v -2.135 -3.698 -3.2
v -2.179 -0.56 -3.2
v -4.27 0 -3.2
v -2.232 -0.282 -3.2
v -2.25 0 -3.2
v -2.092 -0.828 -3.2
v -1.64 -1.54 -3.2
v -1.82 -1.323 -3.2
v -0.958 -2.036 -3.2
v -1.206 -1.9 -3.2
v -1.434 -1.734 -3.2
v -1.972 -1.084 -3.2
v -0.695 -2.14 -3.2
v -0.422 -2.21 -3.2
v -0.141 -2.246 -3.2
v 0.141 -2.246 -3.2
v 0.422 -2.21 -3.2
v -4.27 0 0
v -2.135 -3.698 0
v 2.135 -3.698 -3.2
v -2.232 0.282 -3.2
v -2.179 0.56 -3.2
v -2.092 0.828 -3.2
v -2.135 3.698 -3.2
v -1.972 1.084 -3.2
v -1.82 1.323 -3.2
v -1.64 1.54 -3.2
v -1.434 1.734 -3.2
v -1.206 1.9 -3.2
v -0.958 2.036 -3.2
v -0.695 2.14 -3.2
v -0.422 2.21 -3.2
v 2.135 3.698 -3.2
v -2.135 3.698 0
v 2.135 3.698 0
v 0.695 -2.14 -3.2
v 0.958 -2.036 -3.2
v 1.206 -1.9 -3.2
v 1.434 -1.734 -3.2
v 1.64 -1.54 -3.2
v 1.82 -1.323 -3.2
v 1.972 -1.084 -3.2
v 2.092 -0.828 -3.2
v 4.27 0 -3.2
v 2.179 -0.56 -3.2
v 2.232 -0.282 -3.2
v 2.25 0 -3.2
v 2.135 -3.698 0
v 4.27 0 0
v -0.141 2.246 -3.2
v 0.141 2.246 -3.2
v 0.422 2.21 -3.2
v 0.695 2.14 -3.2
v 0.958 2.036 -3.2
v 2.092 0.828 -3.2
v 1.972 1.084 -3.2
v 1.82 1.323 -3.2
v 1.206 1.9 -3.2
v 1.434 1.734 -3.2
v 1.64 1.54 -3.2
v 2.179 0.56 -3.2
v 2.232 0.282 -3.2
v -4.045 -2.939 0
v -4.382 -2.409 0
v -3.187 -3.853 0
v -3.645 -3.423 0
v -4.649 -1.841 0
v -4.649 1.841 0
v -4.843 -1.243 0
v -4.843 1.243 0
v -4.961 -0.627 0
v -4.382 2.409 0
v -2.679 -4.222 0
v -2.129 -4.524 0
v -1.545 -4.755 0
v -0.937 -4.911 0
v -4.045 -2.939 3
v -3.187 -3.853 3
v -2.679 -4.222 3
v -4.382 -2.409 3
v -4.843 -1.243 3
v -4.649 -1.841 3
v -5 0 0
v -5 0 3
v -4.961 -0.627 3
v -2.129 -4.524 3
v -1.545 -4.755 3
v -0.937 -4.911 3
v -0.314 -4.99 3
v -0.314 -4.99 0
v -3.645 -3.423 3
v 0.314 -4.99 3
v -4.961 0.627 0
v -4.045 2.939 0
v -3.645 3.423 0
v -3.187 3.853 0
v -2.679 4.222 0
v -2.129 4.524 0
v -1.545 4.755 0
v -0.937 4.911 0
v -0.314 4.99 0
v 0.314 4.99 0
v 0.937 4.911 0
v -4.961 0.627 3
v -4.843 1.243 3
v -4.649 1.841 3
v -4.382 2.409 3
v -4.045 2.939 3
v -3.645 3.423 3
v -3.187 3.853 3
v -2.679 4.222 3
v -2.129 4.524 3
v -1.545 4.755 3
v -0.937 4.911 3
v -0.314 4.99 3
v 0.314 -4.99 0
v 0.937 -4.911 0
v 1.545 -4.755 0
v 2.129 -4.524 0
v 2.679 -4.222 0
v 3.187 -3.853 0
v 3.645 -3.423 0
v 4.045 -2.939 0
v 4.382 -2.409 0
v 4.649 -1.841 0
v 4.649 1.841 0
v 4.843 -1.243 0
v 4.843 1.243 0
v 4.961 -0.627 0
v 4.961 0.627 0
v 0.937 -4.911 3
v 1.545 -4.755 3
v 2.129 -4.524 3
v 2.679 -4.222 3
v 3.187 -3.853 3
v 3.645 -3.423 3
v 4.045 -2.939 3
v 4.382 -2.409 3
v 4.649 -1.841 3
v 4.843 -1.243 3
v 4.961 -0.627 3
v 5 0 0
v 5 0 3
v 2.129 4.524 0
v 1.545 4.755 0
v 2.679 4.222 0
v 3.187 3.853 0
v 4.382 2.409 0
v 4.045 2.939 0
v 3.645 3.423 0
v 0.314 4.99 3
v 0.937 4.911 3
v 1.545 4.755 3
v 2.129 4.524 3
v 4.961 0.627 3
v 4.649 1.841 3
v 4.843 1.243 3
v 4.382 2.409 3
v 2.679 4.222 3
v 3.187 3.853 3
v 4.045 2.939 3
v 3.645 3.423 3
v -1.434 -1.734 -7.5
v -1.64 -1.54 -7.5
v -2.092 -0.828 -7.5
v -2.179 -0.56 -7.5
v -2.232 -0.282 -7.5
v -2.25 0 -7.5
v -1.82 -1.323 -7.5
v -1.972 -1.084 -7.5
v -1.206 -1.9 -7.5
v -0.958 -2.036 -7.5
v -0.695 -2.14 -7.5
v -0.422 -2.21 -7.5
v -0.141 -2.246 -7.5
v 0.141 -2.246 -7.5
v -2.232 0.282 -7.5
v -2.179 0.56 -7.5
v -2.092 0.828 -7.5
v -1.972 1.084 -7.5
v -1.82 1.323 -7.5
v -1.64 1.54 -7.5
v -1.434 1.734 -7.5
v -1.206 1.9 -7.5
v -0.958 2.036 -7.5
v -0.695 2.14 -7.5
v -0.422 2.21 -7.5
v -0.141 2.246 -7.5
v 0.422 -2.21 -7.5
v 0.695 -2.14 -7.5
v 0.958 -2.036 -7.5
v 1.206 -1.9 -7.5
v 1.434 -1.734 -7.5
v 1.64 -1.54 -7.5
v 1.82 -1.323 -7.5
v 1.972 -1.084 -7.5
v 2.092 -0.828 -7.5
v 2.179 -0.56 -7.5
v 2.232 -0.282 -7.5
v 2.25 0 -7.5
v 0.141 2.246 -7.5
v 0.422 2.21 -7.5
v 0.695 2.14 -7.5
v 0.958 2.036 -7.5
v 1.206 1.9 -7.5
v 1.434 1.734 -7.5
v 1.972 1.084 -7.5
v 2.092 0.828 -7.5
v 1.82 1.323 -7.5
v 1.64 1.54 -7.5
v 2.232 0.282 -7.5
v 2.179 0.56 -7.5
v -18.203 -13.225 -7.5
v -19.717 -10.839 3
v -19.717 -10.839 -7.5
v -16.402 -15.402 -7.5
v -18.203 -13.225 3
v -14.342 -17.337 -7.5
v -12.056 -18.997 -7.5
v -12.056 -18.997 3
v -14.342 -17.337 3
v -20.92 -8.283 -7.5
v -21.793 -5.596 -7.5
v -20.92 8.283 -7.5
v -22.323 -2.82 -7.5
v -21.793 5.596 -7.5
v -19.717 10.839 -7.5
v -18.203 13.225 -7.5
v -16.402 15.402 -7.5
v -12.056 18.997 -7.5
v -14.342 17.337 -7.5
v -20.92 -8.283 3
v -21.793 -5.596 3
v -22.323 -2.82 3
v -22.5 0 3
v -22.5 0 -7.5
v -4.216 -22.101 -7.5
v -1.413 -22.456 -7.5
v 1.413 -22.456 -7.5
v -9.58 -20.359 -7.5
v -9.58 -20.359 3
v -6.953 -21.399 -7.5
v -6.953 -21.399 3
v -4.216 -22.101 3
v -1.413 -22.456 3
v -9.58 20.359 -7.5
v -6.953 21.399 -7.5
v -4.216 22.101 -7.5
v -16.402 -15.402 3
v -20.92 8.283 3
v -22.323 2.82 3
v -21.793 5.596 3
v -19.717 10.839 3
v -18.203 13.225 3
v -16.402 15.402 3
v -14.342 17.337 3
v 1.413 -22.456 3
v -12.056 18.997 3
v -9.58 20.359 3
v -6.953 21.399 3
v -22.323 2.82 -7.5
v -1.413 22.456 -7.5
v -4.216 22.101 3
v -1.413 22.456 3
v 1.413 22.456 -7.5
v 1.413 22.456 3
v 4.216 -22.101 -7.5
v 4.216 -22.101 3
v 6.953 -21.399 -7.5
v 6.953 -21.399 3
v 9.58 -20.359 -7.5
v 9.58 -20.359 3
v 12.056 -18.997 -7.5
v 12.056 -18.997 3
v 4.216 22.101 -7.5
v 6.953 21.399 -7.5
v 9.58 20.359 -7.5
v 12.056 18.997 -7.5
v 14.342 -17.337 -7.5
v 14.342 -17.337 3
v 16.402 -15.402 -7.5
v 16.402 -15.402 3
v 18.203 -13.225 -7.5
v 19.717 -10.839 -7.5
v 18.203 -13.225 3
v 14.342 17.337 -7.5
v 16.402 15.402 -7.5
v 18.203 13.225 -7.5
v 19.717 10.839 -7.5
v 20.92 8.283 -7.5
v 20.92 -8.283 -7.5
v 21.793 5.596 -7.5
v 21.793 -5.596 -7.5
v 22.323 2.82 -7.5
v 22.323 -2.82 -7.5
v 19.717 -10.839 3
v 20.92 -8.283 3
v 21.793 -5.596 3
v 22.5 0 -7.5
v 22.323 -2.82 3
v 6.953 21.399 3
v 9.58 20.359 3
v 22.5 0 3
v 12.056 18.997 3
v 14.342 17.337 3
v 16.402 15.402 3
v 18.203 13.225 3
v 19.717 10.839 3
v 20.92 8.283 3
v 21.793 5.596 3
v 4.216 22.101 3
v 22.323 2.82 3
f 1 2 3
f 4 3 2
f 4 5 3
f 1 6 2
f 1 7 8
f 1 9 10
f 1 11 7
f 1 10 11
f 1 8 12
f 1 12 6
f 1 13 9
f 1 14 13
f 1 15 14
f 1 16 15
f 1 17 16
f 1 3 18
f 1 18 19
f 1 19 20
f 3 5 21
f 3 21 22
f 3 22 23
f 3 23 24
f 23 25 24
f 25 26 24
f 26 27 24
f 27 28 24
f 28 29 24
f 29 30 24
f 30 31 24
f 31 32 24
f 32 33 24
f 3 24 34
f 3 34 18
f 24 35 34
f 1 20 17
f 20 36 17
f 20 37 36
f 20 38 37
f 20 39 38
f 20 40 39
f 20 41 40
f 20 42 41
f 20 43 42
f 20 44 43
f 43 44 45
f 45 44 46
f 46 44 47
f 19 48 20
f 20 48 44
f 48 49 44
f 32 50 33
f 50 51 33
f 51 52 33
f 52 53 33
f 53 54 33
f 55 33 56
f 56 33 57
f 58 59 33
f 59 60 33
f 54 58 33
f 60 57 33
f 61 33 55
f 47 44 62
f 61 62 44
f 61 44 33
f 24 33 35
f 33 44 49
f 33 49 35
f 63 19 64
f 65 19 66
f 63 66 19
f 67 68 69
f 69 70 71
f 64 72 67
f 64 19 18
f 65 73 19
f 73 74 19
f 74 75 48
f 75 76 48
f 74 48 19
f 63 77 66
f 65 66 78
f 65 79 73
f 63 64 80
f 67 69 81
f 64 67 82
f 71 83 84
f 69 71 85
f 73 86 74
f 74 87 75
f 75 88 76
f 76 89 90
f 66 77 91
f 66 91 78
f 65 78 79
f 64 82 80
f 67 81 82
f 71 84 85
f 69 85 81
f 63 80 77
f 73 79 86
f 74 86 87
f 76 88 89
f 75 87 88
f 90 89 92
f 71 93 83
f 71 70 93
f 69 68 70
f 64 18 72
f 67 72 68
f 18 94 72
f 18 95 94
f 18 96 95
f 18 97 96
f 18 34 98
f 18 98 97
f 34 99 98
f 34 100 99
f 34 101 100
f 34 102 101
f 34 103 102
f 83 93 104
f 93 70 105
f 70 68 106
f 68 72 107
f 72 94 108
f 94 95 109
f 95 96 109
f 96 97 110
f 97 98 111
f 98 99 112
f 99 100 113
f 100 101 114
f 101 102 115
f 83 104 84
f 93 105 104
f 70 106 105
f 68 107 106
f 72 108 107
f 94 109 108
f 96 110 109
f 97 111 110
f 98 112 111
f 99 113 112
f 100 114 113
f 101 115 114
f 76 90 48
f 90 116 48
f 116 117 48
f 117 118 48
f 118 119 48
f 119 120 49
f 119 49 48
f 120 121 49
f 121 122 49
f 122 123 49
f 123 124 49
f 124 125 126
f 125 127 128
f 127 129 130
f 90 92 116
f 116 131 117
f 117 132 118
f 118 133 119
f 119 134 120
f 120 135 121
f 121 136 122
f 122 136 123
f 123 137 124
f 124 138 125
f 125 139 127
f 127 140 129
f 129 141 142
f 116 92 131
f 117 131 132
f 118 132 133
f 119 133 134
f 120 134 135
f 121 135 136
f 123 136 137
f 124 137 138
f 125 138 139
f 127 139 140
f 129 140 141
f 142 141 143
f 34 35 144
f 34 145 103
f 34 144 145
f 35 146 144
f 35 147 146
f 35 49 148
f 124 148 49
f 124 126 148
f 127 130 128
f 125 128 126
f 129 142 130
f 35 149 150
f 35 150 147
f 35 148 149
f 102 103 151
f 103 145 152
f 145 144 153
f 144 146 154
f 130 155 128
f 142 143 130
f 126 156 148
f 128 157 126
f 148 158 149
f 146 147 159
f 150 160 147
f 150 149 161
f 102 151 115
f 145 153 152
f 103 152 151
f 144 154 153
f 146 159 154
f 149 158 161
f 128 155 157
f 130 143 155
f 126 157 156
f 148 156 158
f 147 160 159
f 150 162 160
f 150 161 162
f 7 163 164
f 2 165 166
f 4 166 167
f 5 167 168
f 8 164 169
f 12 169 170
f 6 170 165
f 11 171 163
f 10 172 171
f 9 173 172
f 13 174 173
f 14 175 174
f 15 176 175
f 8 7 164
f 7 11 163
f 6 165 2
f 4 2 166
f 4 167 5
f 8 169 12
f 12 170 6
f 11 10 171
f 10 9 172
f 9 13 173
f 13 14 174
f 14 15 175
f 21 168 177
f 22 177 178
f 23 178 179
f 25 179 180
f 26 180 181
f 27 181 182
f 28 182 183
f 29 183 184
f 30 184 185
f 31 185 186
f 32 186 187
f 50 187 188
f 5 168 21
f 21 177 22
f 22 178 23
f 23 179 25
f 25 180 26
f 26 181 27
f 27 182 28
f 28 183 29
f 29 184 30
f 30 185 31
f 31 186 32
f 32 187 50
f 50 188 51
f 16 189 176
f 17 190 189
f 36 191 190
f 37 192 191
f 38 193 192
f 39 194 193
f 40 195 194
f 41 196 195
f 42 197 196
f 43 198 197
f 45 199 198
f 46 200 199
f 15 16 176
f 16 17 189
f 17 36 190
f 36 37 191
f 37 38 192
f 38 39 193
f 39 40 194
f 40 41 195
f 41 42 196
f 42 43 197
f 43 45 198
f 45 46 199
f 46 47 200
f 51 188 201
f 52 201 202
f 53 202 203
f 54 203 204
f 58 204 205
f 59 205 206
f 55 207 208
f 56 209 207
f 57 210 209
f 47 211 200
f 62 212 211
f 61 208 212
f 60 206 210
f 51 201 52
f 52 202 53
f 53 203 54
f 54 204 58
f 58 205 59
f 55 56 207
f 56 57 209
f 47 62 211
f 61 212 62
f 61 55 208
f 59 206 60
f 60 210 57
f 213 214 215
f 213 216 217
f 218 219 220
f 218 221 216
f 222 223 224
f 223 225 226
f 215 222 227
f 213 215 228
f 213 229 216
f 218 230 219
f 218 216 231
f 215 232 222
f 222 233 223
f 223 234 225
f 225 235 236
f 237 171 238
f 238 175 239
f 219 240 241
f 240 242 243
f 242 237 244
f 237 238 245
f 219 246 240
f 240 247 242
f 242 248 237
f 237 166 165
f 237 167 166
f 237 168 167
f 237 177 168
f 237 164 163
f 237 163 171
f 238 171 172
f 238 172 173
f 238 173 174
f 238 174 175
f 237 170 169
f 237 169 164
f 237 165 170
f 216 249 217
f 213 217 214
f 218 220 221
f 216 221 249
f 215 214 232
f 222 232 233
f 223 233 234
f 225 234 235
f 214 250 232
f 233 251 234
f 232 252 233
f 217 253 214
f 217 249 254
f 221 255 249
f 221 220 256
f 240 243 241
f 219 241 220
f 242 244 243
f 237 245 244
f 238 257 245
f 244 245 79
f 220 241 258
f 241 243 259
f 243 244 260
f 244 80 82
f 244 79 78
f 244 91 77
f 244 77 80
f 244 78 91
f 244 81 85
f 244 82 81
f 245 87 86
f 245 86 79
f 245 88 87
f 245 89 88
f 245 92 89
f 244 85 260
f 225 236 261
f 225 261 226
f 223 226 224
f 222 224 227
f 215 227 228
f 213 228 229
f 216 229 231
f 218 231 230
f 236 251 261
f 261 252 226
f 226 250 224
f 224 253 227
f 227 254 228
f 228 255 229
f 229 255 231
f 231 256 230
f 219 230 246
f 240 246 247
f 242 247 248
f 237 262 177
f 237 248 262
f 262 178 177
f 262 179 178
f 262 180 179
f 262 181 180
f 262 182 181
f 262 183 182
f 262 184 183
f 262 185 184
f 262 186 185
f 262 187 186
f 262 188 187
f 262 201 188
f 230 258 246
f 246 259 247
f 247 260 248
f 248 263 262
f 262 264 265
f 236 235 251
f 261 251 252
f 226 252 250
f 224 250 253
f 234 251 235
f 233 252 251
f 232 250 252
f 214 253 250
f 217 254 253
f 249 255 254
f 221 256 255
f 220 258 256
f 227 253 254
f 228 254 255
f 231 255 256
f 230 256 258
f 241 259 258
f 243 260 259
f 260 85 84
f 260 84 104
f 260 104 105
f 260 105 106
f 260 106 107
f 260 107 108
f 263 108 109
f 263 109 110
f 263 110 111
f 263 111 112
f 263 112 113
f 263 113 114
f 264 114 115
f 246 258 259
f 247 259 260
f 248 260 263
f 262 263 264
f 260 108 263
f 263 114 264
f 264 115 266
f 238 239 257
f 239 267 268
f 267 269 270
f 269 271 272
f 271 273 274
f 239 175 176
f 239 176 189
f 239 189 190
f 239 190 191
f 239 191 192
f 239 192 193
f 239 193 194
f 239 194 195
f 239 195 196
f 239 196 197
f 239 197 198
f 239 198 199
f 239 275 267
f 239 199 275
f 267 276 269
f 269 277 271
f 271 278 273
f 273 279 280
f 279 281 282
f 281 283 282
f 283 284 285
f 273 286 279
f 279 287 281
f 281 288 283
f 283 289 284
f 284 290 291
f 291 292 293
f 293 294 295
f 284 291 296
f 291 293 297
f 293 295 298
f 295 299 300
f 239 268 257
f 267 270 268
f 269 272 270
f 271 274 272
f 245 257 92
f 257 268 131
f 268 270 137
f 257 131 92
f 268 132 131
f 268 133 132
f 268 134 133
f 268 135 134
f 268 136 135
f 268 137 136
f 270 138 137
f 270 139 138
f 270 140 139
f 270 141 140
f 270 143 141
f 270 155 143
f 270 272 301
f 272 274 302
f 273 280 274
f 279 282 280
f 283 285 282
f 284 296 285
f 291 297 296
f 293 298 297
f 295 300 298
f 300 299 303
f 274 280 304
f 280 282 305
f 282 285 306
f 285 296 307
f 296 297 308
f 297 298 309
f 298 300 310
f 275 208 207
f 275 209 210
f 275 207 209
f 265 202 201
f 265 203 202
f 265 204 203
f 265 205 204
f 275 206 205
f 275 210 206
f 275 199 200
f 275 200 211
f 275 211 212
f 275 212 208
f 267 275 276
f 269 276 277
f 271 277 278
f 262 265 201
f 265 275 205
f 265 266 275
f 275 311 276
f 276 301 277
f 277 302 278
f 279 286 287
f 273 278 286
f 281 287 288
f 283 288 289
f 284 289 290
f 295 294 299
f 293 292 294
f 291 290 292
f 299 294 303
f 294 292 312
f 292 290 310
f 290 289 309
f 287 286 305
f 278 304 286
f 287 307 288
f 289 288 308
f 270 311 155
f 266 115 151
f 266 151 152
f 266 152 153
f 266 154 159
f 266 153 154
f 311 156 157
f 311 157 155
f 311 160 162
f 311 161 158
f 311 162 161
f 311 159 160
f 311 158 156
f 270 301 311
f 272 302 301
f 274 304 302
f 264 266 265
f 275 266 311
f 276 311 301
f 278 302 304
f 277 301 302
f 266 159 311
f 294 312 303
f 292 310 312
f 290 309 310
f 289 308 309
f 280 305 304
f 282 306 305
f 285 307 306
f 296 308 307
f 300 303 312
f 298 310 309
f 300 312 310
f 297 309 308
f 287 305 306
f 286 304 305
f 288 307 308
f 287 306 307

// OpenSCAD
$fn = 50;

difference() {
	union() {
		translate(v = [0, 0, -7.5]) {
			cylinder(h = 10.5, r = 22.5);
		}
	}
	union() {
		translate(v = [0, 0, 0]) {
			rotate(a = [0, 0, 0]) {
				difference() {
					union() {
						translate(v = [0, 0, -3.2]) {
							linear_extrude(height = 3.2) {
								polygon(points = [[4.2698, 0.0], [2.1349000000000005, 3.697755269078796], [-2.134899999999999, 3.6977552690787965], [-4.2698, 5.228996902999369e-16], [-2.134900000000002, -3.6977552690787956], [2.1348999999999974, -3.697755269078798]]);
							}
						}
					}
					union();
				}
			}
		}
		#cylinder(h = 3, r = 5.0);
		#translate(v = [0, 0, -100.0]) {
			cylinder(h = 200, r = 2.25);
		}
	}
}
